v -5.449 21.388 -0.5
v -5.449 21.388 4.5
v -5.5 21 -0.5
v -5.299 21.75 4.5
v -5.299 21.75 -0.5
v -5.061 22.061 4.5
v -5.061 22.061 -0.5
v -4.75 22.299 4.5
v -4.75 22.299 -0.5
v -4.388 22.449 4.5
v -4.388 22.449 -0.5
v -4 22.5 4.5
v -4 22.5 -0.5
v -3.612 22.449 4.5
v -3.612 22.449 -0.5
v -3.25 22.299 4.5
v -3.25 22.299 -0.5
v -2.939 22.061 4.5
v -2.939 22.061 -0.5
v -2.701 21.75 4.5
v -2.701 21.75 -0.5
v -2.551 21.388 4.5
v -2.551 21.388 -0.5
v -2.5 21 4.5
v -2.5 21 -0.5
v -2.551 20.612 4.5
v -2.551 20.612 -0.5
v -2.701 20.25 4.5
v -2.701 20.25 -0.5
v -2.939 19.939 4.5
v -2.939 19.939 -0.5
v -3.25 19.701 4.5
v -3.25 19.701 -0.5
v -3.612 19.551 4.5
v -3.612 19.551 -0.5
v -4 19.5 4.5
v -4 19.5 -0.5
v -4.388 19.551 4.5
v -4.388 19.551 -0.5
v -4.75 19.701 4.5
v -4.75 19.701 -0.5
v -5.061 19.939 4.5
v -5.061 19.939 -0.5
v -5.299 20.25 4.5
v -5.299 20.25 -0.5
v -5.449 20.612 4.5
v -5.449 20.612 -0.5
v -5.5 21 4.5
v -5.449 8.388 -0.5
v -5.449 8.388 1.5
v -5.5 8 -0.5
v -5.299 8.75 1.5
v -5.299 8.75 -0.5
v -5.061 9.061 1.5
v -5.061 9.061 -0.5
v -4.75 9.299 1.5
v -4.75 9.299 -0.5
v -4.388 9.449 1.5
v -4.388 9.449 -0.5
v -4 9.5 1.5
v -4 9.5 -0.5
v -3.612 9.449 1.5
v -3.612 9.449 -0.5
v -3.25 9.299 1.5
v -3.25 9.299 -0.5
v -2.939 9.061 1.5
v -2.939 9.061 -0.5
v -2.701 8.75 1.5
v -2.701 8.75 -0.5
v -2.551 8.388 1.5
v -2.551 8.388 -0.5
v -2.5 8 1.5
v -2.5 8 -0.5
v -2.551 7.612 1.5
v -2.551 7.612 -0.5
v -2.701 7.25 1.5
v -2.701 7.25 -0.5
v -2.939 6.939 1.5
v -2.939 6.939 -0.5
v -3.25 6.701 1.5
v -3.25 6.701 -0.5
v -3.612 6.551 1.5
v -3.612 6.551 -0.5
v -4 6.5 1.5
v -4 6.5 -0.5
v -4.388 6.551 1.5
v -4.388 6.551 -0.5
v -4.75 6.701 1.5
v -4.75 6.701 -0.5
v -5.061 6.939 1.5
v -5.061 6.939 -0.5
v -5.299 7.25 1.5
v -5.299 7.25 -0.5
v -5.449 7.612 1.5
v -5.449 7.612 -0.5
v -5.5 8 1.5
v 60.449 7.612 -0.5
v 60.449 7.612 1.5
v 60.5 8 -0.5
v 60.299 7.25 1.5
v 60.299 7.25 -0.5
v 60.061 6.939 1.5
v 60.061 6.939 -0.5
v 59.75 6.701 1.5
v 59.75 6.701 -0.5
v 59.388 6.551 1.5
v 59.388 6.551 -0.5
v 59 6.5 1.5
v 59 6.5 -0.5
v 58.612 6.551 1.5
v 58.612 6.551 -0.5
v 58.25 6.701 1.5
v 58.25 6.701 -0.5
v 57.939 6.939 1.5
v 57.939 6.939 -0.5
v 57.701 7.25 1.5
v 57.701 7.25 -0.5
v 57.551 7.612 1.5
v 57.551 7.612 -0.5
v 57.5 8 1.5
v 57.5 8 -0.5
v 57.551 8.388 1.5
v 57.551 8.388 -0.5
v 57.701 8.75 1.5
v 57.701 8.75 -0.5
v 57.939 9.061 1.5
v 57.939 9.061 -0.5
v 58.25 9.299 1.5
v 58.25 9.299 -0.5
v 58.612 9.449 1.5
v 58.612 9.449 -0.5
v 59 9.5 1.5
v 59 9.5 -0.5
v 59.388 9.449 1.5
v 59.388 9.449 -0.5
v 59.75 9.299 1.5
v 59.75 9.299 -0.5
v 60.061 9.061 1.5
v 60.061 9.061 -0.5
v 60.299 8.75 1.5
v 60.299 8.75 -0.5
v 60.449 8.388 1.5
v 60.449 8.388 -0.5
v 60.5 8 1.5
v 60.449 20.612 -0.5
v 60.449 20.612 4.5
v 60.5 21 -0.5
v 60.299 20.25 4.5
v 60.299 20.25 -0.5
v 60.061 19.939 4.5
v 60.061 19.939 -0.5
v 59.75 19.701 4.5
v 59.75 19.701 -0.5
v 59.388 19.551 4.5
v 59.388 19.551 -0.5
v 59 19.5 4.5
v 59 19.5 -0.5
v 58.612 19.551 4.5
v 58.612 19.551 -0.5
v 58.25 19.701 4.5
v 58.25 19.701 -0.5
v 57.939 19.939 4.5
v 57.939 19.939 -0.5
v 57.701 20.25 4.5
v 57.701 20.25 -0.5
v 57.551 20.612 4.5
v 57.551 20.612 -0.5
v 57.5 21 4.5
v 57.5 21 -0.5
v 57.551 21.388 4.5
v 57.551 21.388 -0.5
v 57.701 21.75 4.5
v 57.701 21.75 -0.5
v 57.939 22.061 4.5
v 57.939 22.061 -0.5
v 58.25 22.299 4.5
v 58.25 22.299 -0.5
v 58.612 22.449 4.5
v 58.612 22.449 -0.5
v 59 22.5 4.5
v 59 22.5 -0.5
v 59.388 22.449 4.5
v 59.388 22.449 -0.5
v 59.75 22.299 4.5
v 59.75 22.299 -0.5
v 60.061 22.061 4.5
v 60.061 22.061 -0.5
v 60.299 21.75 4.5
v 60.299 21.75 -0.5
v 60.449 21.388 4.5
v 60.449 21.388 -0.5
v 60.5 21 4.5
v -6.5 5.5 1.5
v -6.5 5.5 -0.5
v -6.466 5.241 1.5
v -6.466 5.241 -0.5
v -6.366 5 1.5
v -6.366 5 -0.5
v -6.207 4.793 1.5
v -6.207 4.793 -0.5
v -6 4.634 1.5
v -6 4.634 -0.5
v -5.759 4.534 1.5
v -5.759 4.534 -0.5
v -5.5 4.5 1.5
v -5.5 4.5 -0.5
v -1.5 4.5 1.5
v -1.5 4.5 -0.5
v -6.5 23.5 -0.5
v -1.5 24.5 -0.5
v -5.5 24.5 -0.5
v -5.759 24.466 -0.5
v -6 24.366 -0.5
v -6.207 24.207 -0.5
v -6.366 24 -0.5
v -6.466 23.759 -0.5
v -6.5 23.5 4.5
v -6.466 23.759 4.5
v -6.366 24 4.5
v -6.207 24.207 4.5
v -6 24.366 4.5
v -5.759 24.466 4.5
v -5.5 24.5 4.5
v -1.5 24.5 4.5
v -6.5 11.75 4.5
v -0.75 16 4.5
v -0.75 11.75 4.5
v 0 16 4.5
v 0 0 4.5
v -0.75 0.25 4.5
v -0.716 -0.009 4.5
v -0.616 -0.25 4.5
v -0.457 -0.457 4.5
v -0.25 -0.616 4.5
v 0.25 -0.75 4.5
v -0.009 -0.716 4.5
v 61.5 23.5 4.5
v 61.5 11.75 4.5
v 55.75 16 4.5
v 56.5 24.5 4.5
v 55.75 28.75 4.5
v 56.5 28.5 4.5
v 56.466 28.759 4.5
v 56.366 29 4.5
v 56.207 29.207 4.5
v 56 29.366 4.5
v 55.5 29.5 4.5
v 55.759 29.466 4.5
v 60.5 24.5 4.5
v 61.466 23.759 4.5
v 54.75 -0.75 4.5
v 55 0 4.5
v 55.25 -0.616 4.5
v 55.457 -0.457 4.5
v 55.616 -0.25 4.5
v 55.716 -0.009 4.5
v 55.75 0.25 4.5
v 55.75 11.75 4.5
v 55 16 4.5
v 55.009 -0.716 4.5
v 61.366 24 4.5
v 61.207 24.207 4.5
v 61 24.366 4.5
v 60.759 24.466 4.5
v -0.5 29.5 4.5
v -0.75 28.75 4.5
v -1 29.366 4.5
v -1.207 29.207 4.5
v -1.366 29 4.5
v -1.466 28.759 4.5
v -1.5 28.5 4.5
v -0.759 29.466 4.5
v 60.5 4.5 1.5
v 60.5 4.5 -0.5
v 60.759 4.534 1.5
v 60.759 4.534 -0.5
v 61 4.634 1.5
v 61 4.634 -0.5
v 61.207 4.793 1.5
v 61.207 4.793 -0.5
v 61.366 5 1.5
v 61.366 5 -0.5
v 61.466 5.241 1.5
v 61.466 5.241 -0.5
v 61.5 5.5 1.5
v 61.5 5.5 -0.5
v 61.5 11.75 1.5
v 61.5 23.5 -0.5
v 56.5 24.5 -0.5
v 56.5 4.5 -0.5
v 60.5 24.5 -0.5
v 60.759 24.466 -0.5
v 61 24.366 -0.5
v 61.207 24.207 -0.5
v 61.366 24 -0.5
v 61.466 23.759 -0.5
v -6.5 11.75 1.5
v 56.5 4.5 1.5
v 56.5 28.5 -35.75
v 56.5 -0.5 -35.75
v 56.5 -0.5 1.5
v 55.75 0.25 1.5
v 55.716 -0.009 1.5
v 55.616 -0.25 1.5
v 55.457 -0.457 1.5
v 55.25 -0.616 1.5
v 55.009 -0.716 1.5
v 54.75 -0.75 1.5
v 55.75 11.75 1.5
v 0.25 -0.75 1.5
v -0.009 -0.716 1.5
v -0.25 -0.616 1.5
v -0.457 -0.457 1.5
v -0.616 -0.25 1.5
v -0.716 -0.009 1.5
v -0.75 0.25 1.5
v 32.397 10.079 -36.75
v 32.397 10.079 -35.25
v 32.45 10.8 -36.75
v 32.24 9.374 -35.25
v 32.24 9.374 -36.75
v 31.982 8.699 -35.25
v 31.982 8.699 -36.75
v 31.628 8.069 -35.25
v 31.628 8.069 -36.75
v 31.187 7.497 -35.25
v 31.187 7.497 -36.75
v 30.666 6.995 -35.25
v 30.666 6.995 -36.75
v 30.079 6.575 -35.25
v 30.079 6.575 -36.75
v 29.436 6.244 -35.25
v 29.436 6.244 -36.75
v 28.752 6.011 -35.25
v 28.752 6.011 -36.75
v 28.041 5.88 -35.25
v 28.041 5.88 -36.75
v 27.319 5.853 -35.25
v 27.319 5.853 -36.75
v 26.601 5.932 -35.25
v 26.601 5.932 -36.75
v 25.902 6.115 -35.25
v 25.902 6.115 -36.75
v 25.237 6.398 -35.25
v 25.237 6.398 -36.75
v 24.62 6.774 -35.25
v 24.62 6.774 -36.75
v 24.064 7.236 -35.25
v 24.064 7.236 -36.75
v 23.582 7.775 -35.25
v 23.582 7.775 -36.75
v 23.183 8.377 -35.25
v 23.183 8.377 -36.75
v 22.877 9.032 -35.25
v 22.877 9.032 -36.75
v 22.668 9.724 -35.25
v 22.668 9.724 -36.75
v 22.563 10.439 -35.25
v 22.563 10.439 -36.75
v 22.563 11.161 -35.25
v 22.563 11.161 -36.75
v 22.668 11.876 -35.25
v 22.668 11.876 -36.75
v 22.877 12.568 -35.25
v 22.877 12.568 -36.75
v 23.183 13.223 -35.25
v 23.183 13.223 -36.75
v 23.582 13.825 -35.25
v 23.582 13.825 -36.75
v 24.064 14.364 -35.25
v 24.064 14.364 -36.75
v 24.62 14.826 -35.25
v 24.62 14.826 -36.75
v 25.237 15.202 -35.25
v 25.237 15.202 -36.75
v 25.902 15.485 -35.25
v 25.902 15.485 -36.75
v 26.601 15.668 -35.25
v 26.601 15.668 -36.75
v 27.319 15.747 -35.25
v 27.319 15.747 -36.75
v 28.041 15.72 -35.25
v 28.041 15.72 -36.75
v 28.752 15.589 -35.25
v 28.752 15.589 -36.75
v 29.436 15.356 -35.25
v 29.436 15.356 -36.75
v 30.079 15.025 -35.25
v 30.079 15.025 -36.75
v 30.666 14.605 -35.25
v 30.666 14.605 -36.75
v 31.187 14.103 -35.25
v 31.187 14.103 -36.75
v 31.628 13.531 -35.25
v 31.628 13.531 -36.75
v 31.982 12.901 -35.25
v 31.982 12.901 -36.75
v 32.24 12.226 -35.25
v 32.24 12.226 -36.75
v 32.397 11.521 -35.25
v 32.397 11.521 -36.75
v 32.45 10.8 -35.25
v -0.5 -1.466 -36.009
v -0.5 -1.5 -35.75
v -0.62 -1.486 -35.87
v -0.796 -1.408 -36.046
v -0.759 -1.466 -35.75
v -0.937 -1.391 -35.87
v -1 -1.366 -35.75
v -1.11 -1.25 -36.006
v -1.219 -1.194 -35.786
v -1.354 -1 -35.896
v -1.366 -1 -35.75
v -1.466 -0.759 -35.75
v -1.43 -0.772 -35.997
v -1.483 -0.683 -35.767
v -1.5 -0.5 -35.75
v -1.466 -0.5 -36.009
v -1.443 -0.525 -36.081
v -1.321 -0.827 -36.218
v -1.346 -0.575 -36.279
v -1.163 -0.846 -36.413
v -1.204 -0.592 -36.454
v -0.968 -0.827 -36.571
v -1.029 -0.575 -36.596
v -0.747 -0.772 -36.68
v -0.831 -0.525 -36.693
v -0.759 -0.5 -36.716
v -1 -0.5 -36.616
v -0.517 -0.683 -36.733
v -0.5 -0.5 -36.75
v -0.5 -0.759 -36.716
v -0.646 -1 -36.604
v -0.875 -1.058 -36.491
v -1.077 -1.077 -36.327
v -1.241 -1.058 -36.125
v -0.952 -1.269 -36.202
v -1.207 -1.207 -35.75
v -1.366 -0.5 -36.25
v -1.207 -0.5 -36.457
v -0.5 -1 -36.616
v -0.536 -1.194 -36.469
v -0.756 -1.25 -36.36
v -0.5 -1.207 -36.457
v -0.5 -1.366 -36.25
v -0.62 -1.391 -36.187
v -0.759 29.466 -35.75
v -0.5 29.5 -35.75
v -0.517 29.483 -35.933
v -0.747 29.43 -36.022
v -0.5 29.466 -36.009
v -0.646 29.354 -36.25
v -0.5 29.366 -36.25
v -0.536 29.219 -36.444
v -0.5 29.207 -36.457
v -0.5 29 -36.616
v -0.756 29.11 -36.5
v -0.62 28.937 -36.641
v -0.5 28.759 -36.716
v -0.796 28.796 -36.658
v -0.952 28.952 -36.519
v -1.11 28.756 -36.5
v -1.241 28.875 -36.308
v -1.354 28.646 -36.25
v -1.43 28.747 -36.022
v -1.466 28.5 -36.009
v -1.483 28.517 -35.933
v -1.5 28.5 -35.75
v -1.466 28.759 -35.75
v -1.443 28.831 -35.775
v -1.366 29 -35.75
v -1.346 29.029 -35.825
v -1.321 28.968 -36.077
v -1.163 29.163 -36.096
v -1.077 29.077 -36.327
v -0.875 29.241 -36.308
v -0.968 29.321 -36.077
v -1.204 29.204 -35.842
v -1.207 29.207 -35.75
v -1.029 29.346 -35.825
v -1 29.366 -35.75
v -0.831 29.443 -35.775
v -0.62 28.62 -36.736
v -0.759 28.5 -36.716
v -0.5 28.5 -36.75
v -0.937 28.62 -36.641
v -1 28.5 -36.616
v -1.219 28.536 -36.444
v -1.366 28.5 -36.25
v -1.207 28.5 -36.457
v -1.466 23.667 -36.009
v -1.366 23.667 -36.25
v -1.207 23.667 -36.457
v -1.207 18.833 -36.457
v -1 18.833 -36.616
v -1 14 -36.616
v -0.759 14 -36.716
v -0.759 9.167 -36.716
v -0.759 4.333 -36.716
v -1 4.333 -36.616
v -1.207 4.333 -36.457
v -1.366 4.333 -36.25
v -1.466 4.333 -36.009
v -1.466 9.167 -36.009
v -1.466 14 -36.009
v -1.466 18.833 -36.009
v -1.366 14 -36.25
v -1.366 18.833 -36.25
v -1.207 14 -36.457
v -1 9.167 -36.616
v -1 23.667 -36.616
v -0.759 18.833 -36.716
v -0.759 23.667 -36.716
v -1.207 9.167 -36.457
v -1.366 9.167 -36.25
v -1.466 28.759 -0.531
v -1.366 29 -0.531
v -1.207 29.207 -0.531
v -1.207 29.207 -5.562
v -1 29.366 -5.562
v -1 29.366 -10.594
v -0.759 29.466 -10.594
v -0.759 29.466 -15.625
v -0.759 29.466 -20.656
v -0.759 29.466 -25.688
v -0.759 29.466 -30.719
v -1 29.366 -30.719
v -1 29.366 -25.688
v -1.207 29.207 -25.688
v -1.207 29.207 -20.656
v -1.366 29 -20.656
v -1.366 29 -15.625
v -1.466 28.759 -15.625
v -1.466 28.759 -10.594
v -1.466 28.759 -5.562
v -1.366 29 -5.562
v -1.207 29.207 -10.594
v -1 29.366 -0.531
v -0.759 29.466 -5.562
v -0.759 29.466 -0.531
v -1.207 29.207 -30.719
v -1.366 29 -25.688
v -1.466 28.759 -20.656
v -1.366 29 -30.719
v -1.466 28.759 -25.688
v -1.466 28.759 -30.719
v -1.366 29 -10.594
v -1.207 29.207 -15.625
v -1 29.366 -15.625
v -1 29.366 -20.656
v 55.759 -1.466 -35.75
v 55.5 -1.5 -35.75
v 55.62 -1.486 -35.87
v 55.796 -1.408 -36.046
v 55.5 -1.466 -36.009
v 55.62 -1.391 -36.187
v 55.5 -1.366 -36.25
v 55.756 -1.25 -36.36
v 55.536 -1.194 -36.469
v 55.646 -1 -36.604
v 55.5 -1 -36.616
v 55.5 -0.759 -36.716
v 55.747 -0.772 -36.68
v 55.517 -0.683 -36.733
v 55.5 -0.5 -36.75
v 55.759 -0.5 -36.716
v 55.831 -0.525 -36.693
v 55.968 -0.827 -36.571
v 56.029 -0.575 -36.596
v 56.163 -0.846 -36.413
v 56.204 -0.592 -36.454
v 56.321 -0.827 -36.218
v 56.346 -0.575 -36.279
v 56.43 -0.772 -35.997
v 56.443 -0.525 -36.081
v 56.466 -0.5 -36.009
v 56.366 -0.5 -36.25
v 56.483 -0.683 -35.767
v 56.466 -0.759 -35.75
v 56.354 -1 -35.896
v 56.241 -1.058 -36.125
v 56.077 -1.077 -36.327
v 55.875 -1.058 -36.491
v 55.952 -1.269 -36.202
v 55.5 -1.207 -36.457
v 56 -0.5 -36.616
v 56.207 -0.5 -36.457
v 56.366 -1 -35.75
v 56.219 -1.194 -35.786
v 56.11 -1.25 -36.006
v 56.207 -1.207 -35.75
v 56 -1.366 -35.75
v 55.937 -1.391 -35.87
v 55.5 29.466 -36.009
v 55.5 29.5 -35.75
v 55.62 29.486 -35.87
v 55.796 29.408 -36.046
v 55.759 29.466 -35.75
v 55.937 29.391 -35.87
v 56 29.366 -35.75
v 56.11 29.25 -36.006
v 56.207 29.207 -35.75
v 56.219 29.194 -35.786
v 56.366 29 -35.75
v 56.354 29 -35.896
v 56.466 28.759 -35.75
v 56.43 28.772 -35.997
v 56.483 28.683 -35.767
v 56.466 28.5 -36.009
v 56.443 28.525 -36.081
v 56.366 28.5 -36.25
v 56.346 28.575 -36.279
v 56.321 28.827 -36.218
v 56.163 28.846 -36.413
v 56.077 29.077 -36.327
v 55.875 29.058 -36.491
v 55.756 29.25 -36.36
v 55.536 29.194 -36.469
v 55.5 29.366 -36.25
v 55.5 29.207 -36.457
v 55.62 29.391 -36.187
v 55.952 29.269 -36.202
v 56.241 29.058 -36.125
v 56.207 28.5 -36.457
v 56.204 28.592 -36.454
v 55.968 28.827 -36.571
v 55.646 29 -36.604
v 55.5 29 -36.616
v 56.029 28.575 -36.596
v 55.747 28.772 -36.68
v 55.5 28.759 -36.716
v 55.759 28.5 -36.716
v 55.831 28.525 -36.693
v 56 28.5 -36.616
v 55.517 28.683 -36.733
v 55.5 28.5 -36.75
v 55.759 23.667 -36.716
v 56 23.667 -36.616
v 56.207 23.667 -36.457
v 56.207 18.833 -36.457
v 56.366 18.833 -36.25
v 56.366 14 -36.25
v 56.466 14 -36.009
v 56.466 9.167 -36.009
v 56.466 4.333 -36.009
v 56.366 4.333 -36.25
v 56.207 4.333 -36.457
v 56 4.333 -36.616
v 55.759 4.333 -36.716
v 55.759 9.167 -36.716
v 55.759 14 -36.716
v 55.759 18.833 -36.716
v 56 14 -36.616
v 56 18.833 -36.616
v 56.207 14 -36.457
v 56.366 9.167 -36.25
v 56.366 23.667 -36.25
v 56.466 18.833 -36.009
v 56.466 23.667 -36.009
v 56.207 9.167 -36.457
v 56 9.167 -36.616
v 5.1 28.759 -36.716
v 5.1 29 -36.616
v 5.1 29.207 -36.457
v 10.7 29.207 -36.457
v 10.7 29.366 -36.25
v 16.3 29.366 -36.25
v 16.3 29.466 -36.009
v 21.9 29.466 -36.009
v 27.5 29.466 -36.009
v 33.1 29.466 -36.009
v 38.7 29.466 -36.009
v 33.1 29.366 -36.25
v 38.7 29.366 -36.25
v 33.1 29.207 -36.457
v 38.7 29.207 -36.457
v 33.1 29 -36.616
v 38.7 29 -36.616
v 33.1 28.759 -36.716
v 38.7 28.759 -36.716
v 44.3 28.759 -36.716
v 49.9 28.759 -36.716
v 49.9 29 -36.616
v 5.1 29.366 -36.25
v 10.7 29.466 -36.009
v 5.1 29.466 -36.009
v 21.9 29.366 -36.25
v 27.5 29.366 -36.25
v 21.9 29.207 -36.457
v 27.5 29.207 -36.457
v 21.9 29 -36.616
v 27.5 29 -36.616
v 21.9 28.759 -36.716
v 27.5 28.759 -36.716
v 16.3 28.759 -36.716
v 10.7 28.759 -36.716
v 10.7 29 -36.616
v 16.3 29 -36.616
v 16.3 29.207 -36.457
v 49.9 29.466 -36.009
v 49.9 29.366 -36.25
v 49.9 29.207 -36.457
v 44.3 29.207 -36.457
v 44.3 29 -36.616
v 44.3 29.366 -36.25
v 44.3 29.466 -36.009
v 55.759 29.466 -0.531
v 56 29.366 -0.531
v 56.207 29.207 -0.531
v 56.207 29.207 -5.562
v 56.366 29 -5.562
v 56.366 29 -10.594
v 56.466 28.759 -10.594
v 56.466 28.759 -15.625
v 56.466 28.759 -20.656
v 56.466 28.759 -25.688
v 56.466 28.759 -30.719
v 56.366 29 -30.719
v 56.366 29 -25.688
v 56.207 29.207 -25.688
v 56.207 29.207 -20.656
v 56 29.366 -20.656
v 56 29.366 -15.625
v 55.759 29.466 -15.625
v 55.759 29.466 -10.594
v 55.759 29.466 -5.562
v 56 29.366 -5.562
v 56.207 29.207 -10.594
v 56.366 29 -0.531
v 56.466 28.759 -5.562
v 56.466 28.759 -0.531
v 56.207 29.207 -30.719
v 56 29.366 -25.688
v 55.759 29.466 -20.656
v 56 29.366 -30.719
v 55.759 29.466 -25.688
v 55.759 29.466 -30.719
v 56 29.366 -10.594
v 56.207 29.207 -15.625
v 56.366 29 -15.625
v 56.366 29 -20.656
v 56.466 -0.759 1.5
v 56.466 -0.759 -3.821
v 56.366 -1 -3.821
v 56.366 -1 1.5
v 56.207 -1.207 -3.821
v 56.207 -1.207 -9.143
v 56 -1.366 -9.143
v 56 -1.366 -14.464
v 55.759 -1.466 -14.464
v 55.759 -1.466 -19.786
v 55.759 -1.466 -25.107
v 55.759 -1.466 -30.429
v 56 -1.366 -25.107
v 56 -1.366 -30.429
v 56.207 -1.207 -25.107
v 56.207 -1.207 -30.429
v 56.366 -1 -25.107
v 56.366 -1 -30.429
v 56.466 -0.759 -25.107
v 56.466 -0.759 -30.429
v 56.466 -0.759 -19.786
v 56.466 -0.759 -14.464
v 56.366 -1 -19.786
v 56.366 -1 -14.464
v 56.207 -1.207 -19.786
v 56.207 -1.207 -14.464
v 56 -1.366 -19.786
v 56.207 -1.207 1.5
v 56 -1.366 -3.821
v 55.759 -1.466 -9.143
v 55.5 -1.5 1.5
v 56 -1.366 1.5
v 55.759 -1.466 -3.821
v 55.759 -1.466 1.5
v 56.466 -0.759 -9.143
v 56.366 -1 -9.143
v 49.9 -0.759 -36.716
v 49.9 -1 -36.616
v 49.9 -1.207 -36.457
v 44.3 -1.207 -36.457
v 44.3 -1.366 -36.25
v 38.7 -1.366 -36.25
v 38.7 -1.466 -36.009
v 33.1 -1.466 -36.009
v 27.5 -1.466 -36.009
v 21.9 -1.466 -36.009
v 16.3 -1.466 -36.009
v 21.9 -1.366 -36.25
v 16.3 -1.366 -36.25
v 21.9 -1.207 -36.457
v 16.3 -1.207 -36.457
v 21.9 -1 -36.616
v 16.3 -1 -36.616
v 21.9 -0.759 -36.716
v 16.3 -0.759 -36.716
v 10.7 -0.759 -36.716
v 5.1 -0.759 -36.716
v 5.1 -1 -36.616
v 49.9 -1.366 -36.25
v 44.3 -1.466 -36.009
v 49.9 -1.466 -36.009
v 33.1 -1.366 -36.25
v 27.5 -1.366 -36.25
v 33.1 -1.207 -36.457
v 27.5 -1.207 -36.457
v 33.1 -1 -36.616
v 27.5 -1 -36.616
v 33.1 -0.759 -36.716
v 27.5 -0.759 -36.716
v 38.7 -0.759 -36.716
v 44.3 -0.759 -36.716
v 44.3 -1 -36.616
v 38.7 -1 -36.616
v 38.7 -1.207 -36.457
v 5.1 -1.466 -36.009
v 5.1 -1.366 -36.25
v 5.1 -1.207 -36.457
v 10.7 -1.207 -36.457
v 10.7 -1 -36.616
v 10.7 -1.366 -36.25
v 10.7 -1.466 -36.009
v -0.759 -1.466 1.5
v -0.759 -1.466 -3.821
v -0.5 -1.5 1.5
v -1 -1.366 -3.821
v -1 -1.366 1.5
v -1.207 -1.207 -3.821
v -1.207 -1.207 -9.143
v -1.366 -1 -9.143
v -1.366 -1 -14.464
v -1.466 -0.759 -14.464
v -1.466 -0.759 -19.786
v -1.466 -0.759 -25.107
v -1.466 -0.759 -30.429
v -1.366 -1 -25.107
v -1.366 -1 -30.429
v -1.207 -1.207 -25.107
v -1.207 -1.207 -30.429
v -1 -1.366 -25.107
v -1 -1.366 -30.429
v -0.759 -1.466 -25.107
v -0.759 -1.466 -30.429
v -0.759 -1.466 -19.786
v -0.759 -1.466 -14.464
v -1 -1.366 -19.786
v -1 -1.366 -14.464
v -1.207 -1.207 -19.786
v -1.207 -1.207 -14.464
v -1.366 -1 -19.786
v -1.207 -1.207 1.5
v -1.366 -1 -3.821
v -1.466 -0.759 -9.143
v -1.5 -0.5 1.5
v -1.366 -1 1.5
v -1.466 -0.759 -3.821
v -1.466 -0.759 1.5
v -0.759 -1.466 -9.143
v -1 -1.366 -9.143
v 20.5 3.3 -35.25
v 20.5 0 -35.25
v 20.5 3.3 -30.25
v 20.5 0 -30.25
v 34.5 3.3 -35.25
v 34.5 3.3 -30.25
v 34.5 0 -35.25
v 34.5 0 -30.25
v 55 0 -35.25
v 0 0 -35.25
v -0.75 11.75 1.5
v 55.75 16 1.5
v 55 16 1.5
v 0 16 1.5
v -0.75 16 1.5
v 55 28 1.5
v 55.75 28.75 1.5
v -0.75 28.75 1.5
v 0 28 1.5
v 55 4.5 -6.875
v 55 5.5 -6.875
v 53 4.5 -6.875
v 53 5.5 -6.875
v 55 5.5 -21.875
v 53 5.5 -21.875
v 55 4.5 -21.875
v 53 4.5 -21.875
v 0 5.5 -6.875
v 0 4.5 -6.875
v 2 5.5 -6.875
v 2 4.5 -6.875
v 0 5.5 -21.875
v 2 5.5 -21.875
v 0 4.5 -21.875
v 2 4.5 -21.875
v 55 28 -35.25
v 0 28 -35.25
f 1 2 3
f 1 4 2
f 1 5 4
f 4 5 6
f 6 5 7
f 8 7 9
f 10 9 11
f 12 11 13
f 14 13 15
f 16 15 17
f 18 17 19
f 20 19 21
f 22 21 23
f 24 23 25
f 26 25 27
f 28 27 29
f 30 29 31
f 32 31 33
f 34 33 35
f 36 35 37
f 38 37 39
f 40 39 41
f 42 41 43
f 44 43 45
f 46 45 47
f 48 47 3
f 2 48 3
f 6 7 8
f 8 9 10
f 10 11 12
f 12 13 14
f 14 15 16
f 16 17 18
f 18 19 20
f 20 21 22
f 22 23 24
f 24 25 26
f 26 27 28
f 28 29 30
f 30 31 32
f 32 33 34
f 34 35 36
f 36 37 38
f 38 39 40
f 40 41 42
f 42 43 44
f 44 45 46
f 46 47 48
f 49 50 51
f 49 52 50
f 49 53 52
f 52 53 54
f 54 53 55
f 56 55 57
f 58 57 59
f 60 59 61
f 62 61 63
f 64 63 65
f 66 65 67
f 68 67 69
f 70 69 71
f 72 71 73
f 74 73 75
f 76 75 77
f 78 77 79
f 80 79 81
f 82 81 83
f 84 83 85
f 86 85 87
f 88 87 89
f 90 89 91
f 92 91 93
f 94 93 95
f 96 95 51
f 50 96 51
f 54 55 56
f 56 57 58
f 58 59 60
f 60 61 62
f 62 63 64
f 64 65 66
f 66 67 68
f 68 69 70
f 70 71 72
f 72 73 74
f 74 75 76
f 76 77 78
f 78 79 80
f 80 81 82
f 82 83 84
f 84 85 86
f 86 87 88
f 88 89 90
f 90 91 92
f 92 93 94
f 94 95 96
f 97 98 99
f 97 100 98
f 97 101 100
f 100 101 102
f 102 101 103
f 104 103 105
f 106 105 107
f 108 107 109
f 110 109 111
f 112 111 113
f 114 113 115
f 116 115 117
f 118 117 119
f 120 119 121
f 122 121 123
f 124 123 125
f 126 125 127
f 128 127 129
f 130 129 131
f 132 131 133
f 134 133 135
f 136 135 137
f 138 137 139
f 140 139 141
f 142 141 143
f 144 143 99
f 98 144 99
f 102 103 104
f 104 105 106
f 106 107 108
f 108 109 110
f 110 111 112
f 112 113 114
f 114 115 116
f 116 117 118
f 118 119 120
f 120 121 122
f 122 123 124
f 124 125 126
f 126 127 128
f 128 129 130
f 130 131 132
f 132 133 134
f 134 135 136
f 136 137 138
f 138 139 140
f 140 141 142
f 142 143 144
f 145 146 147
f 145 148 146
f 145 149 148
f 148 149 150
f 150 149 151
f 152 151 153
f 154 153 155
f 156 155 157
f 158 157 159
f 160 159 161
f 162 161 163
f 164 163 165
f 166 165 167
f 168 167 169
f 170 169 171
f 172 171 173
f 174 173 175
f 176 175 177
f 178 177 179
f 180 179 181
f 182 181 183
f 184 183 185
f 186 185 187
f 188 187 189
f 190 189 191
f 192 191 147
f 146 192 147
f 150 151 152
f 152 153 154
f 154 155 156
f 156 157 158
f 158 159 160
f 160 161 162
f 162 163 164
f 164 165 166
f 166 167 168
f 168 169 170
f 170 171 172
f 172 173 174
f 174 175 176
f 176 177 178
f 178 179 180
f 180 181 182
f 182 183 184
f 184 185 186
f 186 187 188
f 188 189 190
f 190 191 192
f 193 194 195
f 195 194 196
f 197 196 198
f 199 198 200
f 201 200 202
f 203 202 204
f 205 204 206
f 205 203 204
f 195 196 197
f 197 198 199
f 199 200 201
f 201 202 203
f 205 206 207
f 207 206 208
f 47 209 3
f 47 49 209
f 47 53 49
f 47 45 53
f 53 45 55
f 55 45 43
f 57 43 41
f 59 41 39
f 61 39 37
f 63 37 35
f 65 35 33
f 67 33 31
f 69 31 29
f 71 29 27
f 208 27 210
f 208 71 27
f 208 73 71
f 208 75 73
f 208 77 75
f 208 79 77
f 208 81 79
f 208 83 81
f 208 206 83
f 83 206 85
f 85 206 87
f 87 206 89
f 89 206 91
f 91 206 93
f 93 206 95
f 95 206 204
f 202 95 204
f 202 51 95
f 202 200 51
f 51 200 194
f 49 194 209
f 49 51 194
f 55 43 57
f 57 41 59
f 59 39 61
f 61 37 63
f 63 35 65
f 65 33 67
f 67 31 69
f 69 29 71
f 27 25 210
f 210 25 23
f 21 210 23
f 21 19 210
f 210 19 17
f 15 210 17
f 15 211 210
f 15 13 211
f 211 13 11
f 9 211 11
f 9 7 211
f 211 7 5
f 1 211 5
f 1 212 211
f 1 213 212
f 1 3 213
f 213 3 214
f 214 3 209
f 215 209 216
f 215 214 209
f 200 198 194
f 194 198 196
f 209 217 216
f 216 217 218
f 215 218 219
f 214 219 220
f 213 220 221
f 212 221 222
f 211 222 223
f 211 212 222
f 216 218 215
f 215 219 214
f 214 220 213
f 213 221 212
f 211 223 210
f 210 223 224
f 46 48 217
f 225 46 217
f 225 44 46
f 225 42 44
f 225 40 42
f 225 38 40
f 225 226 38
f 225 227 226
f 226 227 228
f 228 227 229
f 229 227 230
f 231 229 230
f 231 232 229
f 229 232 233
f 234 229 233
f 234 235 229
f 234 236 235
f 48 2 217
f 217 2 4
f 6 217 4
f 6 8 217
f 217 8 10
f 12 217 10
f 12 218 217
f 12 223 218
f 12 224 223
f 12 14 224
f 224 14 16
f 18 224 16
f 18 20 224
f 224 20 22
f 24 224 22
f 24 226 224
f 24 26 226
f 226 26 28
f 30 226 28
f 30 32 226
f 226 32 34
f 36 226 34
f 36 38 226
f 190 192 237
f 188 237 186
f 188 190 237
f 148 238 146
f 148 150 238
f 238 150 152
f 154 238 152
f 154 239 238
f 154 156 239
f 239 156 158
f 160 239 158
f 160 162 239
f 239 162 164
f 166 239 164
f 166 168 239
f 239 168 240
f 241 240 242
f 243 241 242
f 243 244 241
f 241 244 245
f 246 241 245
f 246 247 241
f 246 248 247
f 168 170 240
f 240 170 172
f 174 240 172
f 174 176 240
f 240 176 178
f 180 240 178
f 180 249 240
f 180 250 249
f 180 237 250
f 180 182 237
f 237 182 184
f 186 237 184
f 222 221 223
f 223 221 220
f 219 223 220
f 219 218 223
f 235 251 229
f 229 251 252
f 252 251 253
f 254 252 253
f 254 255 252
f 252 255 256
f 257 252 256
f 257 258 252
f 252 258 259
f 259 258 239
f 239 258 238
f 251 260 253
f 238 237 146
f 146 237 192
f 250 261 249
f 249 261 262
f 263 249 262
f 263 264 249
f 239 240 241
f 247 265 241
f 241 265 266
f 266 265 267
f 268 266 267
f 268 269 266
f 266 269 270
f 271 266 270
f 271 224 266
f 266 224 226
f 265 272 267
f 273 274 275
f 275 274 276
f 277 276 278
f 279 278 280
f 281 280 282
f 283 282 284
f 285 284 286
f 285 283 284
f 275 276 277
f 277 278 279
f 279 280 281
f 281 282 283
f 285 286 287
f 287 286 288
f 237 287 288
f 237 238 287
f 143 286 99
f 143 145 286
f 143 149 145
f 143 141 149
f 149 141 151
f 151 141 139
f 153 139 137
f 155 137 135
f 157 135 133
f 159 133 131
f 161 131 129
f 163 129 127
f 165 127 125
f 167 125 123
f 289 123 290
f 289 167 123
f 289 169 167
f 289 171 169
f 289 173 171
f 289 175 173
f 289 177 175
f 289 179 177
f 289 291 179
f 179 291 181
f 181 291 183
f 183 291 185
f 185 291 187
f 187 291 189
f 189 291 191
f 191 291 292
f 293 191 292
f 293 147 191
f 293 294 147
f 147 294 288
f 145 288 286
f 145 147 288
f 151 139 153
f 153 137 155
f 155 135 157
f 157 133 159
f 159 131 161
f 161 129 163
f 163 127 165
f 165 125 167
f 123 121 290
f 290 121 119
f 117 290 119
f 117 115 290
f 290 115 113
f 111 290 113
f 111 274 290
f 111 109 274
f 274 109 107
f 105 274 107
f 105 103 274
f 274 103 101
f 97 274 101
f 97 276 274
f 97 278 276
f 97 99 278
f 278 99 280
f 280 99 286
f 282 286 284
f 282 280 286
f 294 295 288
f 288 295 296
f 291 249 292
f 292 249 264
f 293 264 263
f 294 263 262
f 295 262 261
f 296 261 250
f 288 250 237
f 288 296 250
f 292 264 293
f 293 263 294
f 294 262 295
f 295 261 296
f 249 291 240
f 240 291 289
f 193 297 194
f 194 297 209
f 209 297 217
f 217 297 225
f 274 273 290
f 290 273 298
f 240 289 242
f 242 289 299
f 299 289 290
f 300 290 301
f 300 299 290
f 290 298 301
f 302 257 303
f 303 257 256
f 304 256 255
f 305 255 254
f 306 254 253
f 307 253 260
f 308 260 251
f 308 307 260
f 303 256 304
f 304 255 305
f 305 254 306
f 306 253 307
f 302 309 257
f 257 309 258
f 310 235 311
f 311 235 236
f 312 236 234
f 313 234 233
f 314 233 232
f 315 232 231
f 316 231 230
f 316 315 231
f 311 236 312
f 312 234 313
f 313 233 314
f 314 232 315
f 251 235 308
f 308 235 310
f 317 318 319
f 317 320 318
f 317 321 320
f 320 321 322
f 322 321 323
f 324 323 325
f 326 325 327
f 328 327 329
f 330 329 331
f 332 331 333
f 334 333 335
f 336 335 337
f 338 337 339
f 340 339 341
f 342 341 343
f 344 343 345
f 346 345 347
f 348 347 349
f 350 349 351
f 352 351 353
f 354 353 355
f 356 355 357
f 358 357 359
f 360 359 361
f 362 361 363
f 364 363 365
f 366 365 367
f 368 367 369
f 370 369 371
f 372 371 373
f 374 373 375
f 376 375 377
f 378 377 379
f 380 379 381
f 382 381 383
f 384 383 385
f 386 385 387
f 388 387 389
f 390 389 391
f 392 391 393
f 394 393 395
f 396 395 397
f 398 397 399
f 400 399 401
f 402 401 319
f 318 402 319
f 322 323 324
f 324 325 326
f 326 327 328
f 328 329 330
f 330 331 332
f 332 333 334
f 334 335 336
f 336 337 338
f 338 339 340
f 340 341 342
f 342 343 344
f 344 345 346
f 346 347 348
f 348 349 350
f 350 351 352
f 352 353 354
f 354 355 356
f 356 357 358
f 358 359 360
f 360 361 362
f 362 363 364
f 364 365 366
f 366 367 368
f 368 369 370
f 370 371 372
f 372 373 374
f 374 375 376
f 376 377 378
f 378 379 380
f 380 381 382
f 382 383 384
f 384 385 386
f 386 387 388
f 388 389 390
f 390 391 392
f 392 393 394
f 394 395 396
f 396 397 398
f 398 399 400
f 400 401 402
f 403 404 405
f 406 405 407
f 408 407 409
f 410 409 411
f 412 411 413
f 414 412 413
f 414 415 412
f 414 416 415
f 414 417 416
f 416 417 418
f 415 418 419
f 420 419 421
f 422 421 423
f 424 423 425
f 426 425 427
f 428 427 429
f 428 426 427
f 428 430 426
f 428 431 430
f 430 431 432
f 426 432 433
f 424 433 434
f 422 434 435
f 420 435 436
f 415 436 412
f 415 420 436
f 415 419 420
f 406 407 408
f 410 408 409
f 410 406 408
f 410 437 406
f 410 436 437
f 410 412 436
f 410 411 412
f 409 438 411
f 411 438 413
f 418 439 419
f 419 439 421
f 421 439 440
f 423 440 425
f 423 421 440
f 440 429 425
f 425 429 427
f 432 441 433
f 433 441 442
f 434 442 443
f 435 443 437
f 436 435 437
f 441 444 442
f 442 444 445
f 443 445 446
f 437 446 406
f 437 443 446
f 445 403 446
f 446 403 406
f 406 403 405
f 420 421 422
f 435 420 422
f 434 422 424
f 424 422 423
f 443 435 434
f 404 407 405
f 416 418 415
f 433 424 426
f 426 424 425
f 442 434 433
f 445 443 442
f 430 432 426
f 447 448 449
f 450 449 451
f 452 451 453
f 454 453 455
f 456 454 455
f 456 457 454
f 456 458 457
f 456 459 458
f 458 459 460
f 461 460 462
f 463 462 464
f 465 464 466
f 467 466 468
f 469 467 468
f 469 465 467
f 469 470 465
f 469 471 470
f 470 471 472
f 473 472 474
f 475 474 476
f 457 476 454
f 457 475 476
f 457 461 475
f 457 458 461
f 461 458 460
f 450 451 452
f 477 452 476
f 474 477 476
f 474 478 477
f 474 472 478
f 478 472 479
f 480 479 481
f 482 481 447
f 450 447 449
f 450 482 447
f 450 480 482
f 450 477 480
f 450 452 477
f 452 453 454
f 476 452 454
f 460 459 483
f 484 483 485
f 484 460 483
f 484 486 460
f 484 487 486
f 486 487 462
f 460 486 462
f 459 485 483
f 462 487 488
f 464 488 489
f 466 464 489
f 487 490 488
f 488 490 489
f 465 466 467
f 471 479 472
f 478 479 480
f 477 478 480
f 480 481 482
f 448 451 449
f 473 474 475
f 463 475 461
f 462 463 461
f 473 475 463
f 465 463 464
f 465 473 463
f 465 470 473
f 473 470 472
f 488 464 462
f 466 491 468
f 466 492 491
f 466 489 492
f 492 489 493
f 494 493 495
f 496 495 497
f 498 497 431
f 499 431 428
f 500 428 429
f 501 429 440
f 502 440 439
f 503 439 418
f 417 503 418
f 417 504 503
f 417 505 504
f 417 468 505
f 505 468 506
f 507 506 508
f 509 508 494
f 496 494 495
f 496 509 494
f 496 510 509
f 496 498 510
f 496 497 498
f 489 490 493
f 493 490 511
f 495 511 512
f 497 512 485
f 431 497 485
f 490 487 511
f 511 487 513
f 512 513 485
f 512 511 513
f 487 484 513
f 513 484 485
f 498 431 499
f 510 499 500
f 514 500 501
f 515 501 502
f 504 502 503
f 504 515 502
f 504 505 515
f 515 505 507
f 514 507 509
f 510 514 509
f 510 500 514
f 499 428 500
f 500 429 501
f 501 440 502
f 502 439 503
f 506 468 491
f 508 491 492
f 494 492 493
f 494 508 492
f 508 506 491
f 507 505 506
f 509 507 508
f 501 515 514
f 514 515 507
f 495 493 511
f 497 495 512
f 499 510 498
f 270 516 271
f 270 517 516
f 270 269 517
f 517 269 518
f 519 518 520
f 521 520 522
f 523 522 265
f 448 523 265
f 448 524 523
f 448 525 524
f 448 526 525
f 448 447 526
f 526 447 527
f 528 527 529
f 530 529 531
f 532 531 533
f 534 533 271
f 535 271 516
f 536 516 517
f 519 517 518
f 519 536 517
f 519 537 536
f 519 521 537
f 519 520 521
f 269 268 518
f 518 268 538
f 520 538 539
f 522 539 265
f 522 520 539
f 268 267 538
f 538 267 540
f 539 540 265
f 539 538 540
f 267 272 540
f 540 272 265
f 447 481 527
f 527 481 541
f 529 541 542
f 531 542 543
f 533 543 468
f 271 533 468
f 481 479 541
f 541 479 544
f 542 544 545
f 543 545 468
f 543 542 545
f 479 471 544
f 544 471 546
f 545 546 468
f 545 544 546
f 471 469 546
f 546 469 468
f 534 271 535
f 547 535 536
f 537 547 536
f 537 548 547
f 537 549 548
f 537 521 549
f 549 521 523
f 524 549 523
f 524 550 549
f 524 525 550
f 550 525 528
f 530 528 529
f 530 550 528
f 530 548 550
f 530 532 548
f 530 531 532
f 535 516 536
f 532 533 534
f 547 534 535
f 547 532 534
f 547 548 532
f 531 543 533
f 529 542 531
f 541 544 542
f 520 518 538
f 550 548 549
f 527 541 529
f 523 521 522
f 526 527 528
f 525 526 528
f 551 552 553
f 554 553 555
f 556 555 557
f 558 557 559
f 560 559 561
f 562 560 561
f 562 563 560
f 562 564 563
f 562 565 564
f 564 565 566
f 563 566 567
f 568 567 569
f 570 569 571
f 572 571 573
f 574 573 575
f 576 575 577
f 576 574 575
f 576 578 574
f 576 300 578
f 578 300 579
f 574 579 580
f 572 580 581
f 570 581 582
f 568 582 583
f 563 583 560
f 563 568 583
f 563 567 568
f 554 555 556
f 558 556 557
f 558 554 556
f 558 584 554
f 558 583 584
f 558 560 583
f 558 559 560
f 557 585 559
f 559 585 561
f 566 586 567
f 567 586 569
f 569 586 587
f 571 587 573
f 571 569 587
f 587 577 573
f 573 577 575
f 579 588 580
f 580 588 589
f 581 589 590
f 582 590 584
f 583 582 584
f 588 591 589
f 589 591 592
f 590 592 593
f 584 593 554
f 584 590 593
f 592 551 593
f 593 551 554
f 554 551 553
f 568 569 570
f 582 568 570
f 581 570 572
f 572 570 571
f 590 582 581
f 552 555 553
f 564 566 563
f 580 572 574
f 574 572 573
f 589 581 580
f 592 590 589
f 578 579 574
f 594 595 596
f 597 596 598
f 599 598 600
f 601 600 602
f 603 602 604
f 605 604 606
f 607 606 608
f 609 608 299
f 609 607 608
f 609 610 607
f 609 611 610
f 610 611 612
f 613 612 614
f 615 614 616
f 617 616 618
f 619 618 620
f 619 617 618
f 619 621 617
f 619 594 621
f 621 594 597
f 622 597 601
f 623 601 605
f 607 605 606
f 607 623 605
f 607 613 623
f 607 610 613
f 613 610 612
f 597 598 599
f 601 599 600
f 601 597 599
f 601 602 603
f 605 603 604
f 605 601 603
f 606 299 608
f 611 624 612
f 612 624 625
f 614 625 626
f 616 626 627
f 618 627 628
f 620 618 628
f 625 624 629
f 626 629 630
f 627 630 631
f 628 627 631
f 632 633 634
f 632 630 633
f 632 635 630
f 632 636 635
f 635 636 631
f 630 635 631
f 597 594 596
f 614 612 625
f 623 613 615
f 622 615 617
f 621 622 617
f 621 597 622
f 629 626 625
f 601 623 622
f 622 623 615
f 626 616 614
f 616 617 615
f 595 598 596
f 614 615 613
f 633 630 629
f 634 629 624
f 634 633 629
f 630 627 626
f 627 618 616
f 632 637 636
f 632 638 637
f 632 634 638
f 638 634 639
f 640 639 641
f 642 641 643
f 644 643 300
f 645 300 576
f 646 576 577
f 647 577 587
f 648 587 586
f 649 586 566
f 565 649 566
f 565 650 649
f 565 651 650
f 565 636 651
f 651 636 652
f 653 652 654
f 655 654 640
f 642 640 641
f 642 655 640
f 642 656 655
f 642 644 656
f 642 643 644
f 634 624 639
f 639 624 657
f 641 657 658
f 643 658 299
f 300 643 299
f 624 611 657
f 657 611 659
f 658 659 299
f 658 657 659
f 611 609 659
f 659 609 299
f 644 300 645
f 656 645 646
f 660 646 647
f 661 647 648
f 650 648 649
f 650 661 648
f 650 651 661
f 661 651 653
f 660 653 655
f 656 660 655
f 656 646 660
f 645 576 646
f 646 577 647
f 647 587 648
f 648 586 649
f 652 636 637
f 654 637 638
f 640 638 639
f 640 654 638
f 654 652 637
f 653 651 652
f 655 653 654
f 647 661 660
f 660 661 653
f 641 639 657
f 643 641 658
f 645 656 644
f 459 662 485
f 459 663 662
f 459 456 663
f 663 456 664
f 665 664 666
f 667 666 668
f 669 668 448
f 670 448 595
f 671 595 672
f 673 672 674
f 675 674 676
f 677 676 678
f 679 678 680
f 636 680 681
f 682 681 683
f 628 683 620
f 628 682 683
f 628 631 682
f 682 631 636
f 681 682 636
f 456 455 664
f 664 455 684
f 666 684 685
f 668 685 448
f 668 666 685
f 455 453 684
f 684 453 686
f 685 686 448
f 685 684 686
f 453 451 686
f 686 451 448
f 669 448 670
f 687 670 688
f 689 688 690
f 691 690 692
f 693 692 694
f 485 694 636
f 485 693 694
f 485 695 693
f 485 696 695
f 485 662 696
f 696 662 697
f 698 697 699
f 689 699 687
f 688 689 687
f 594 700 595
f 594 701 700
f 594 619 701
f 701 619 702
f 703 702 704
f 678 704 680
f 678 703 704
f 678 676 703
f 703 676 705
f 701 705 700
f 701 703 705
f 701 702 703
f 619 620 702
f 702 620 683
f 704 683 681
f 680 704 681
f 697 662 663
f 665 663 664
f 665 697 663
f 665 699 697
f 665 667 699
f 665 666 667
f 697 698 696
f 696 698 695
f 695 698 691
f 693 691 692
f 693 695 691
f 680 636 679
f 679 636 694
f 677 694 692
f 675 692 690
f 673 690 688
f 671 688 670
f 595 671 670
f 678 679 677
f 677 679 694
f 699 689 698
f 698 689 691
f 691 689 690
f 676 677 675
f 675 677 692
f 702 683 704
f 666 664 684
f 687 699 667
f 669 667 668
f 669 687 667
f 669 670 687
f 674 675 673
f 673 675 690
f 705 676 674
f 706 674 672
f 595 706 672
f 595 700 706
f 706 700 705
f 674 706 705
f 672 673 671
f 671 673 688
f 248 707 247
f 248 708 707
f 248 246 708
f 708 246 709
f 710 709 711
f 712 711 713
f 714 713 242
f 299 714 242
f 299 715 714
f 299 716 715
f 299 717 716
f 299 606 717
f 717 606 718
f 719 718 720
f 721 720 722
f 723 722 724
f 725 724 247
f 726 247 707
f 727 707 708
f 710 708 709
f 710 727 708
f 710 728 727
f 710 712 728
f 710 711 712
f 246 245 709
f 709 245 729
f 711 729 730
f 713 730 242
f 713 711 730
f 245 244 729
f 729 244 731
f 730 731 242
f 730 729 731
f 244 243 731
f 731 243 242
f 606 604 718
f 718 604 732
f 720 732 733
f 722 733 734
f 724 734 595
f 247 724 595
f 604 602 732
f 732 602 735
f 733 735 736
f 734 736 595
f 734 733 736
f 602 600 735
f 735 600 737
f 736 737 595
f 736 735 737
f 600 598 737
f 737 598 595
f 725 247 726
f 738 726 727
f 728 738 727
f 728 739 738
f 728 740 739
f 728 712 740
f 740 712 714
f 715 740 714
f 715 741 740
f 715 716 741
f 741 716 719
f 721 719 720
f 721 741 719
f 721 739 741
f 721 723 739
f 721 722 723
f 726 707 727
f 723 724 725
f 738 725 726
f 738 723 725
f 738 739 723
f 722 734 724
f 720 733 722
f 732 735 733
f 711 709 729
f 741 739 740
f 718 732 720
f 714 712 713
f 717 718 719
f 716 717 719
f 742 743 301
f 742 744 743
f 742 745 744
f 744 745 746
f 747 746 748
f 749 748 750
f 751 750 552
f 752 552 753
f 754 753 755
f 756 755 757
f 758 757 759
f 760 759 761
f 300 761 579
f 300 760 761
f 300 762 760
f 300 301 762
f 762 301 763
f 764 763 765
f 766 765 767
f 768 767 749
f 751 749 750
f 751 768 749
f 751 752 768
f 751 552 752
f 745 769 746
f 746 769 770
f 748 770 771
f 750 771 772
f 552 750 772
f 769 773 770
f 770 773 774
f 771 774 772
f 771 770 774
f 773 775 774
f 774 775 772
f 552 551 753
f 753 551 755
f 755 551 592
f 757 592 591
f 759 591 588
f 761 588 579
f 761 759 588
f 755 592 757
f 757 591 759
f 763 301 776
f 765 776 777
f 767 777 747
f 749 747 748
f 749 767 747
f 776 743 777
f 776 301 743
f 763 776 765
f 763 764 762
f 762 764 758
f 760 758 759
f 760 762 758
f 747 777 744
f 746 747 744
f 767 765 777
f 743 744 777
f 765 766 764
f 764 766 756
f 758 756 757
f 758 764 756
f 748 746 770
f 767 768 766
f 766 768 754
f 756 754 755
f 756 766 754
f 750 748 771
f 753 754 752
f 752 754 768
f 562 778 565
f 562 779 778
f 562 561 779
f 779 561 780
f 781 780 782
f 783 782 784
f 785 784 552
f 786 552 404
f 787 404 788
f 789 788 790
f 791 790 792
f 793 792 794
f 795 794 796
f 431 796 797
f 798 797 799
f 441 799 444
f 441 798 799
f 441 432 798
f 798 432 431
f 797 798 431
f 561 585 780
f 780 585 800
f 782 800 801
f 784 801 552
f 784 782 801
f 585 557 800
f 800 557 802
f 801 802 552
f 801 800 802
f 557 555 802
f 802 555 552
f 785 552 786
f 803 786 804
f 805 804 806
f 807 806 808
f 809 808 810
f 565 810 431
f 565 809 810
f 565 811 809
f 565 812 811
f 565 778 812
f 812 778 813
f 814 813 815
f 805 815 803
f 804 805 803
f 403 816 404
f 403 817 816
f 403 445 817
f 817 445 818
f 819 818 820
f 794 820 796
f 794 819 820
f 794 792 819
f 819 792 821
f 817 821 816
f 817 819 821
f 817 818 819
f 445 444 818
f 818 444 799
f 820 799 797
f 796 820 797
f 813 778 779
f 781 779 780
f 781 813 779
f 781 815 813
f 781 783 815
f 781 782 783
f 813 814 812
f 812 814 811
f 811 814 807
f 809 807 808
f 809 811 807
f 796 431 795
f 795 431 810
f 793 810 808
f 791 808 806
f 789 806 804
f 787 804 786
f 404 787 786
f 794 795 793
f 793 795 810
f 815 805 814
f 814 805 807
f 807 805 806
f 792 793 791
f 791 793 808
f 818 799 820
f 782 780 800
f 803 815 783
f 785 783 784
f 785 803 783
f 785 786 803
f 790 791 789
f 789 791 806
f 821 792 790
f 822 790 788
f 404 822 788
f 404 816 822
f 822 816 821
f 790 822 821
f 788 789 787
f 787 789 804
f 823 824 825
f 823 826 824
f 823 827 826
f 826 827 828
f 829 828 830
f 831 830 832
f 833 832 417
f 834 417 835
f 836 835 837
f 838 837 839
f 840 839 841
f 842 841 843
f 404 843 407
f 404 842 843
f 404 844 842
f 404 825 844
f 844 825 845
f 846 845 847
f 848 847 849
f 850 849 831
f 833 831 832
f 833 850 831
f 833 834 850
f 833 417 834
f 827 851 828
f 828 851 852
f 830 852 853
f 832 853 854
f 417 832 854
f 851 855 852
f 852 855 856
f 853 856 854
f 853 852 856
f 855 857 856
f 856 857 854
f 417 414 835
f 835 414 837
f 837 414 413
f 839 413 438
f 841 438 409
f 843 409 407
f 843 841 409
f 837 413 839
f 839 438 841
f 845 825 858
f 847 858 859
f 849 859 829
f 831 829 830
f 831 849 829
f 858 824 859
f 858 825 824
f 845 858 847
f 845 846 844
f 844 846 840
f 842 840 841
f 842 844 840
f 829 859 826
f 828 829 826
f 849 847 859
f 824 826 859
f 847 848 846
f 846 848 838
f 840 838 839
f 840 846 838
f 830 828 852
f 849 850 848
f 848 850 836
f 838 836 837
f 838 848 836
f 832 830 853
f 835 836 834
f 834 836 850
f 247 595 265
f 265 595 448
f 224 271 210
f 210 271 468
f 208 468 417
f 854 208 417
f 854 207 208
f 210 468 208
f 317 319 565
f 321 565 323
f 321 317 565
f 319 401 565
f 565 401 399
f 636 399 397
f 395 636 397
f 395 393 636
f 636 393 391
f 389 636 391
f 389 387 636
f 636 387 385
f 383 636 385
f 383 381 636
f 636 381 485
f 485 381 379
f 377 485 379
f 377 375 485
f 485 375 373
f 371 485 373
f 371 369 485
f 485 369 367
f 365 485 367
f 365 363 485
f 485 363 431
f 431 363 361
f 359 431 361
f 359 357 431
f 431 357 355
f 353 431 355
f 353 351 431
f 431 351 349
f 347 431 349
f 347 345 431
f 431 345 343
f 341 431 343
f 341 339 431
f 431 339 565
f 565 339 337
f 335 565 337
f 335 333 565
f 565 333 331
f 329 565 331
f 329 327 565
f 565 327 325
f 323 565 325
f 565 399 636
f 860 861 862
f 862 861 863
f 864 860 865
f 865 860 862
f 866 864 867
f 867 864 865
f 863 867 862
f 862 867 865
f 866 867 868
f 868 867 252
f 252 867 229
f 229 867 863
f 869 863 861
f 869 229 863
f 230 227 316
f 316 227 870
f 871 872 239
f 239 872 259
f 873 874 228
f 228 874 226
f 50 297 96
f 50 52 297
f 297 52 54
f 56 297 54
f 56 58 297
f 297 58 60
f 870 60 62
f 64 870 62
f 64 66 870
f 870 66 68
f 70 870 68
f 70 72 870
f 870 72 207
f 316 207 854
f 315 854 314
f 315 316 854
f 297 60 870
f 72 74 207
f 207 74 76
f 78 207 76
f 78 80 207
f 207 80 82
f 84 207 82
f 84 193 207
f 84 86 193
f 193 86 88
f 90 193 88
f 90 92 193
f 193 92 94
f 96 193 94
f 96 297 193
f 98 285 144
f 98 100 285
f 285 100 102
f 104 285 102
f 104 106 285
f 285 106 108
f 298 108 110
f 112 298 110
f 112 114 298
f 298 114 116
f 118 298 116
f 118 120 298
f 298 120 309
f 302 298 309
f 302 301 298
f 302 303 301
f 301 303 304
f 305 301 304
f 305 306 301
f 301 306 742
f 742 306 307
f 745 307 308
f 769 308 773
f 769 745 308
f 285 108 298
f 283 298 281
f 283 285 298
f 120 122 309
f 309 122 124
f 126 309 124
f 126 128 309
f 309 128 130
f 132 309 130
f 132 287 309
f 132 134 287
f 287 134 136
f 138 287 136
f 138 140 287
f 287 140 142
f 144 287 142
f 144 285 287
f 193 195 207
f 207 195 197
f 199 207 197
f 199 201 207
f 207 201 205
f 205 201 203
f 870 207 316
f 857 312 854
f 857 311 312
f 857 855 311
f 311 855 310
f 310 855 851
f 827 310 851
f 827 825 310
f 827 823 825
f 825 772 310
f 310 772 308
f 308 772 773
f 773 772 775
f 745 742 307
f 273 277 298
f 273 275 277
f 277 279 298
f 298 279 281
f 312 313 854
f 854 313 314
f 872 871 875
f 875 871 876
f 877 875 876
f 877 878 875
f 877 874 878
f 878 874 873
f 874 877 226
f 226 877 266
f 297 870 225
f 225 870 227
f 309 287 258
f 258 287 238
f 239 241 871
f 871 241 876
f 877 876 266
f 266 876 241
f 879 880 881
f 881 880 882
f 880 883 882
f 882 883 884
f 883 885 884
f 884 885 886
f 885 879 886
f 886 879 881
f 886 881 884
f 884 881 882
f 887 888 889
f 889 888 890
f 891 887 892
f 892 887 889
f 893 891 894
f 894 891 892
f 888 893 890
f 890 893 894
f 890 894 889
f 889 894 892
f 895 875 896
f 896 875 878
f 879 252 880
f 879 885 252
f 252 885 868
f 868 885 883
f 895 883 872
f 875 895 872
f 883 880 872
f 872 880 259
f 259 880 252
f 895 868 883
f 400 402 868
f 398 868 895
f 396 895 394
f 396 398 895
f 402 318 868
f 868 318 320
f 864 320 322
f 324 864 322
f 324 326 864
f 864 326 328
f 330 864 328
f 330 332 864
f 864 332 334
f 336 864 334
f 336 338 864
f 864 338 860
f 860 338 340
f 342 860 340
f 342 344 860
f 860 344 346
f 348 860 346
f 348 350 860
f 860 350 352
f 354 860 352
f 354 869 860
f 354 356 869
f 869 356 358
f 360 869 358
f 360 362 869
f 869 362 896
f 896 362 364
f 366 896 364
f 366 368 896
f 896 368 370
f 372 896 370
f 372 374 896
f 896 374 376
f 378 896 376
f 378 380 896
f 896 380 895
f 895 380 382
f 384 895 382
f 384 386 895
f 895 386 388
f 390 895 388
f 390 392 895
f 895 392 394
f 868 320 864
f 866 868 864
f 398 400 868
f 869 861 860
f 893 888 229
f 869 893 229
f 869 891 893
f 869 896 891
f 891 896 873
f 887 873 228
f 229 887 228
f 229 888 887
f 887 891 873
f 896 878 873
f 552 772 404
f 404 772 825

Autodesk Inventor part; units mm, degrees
ref_plane "YZ Plane" through (0, 0, 0) normal (1, 0, 0) x (0, 1, 0)
ref_plane "XZ Plane" through (0, 0, 0) normal (0, 1, 0) x (-1, 0, 0)
ref_plane "XY Plane" through (0, 0, 0) normal (0, 0, 1) x (1, 0, 0)
sketch "Sketch3" plane through (0, 0, 0) normal (0, 1, 0) x (-1, 0, 0)
  line L0 (0, 0) -> (-55, 0)
  line L1 (-55, 0) -> (-55, -35.25)
  line L2 (-55, -35.25) -> (0, -35.25)
  line L3 (0, -35.25) -> (0, 0)
  line L4 (1.5, 1.5) -> (-56.5, 1.5)
  line L5 (-56.5, 1.5) -> (-56.5, -36.75)
  line L6 (-56.5, -36.75) -> (1.5, -36.75)
  line L7 (1.5, -36.75) -> (1.5, 1.5)
  dimension "d0" = 35.25
  dimension "d1" = 55
  dimension "d4" = 38.25
  dimension "d5" = 58
  dimension "d6" = 1.5
  dimension "d7" = 1.5
extrude "Extrusion1" add sketch "Sketch3" against normal blind 1.5 contours L3 L2 L1 L0 | L7 L6 L5 L4
sketch "Sketch5" plane through (0, 0, 0) normal (0, 1, 0) x (-1, 0, 0)
  line L0 (-55, 0) -> (-55, -35.25)
  line L1 (-55, -35.25) -> (0, -35.25)
  line L2 (0, -35.25) -> (0, 0)
  line L3 (-56.5, 1.5) -> (-56.5, -36.75)
  line L4 (-56.5, -36.75) -> (1.5, -36.75)
  line L5 (1.5, -36.75) -> (1.5, 1.5)
  line L6 (0, 0) -> (0, 1.5)
  line L7 (1.5, 1.5) -> (0, 1.5)
  line L8 (-55, 0) -> (-55, 1.5)
  line L9 (-55, 1.5) -> (-56.5, 1.5)
  dimension "d9" = 55
  dimension "d11" = 58
  dimension "d12" = 1.5
extrude "Extrusion2" add sketch "Sketch5" along normal blind 28
sketch "Sketch6" plane through (0, 28, 0) normal (0, 1, 0) x (1, 0, 0)
  line L0 (-1.5, -1.5) -> (56.5, -1.5)
  line L1 (56.5, -1.5) -> (56.5, 36.75)
  line L2 (56.5, 36.75) -> (-1.5, 36.75)
  line L3 (-1.5, 36.75) -> (-1.5, -1.5)
  point P0 (0, 0)
extrude "Extrusion3" add sketch "Sketch6" along normal blind 1.5
sketch "Sketch7" plane through (0, 0, 1.5) normal (1, 0, 0) x (0, 0, -1)
  line L0 (8.375, 4.5) -> (23.375, 4.5)
  line L1 (23.375, 4.5) -> (23.375, 5.5)
  line L2 (23.375, 5.5) -> (8.375, 5.5)
  line L3 (8.375, 5.5) -> (8.375, 4.5)
  line L4 (36.75, 0) -> (36.75, 28) projected
  line L5 (0, 0) -> (0, 28) projected
  line L6 (36.75, 0) -> (0, 0) projected
  point P0 (1.5, 0)
  dimension "d20" = 15
  dimension "d21" = 1
  dimension "d22" = 13.375
  dimension "d23" = 8.375
  dimension "d40" = 4.5
ref_plane "Work Plane1" through (27.5, 0, 1.5) normal (1, 0, 0) x (0, 0, -1)
extrude "Extrusion4" add sketch "Sketch7" along normal blind 2
mirror "Mirror1" about plane through (27.5, 0, 1.5) normal (1, 0, 0) of "Extrusion4"
sketch "Sketch8" plane through (-1.5, -1.5, 1.5) normal (0, 0, 1) x (1, 0, 0)
  line L0 (0.75, 30.25) -> (57.25, 30.25)
  line L1 (57.25, 30.25) -> (57.25, 13.25)
  line L2 (0.75, 13.25) -> (0.75, 30.25)
  line L3 (0, 31) -> (58, 31) projected
  line L4 (0.75, 13.25) -> (0, 13.25)
  line L5 (57.25, 13.25) -> (58, 13.25)
  line L6 (0, 31) -> (0, 13.25)
  line L7 (0, 31) -> (0, 0) projected
  line L8 (58, 31) -> (58, 13.25)
  line L9 (58, 0) -> (58, 31) projected
  point P0 (1.5, 1.5)
  dimension "d27" = 0.75
  dimension "d29" = 56.5
  dimension "d31" = 17
  dimension "d65" = 0.75
  dimension "d84" = 17
extrude "Extrusion5" add sketch "Sketch8" along normal blind 3
sketch "Sketch9" plane through (-1.5, -1.5, 1.5) normal (0, 0, 1) x (1, 0, 0)
  line L0 (0.75, 0.75) -> (57.25, 0.75)
  line L1 (57.25, 0.75) -> (57.25, 17.5)
  line L2 (0.75, 17.5) -> (0.75, 0.75)
  line L3 (1.5, 1.5) -> (56.5, 1.5) projected
  line L4 (57.25, 17.5) -> (56.5, 17.5)
  line L5 (56.5, 1.5) -> (56.5, 29.5) projected
  line L6 (56.5, 1.5) -> (56.5, 17.5)
  line L7 (56.5, 1.5) -> (1.5, 1.5)
  line L8 (0.75, 17.5) -> (1.5, 17.5)
  line L9 (1.5, 1.5) -> (1.5, 29.5) projected
  line L10 (1.5, 17.5) -> (1.5, 1.5)
  line L11 (1.5, 29.5) -> (56.5, 29.5) projected
  dimension "d34" = 0.75
  dimension "d36" = 56.5
  dimension "d69" = 16.75
  dimension "d70" = 16.75
  dimension "d97" = 28.75
extrude "Extrusion6" add sketch "Sketch9" along normal blind 3 contours L2 L8 L9 L3 L5 L4 L1 L0
sketch "Sketch10" plane through (0, 0, -35.25) normal (0, 0, 1) x (1, 0, 0)
  line L0 (55, 0) -> (0, 0) projected
  line L1 (20.5, 0) -> (34.5, 0)
  line L2 (34.5, 0) -> (34.5, 3.3)
  line L3 (34.5, 3.3) -> (20.5, 3.3)
  line L4 (20.5, 3.3) -> (20.5, 0)
  line L5 (0, 0) -> (0, 28) projected
  dimension "d41" = 14
  dimension "d42" = 20.5
  dimension "d43" = 3.3
extrude "Extrusion7" add sketch "Sketch10" along normal blind 5
fillet "Fillet1" radius 1 8 edges at (56.5, 29.5, -16.125) (56.5, -1.5, -17.625) (56.5, 14, -36.75) (27.5, 29.5, -36.75) (27.5, -1.5, -36.75) (-1.5, 14, -36.75) (-1.5, 29.5, -16.125) (-1.5, -1.5, -17.625)
sketch "Sketch11" plane through (0, 28, -35.25) normal (0, 0, 1) x (1, 0, 0)
  circle A0 centre (27.5, -17.2) radius 4.95
  line L0 (20.5, -24.7) -> (34.5, -24.7) projected
  line L1 (0, -28) -> (0, 0) projected
  dimension "d47" = 9.9
  dimension "d48" = 7.5
  dimension "d49" = 27.5
extrude "Extrusion8" cut sketch "Sketch11" against normal blind 5
fillet "Fillet2" radius 1 1 edges at (-0.75, -0.75, 3)
fillet "Fillet3" radius 1 1 edges at (55.75, -0.75, 3)
sketch "Sketch15" plane through (56.5, 11.75, 4.5) normal (1, 0, 0) x (0, 0, -1)
  line L0 (0, 0) -> (5, 0)
  line L1 (5, 0) -> (5, 12.75)
  line L2 (5, 12.75) -> (0, 12.75)
  line L3 (0, 12.75) -> (0, 0)
  line L4 (5, 0) -> (3, 0)
  line L5 (3, 0) -> (3, -7.25)
  line L6 (3, -7.25) -> (5, -7.25)
  line L7 (5, -7.25) -> (5, 0)
  point P0 (4.5, -11.75)
  point P1 (0, 4.25)
  point P2 (0, 17.75)
  dimension "d78" = 5
  dimension "d79" = 12.75
  dimension "d80" = 2
  dimension "d81" = 7.25
  dimension "d98" = 11.5
  dimension "d99" = 20
  dimension "d100" = 12.75
  dimension "d101" = 5
extrude "Extrusion10" add sketch "Sketch15" along normal blind 5
mirror "Mirror3" about plane through (27.5, 0, 1.5) normal (1, 0, 0) of "Extrusion10"
fillet "Fillet7" radius 1 2 edges at (61.5, 24.5, 2) (61.5, 4.5, 0.5)
fillet "Fillet8" radius 1 2 edges at (-6.5, 24.5, 2) (-6.5, 4.5, 0.5)
sketch "Sketch16" plane through (-1.5, -1.5, 4.5) normal (0, 0, 1) x (1, 0, 0)
  circle A0 centre (60.5, 22.5) radius 1.5
  line L0 (63, 25) -> (63, 13.25) projected
  line L1 (58, 26) -> (62, 26) projected
  point P0 (1.5, 1.5)
  dimension "d87" = 3
  dimension "d88" = 2.5
  dimension "d89" = 3.5
extrude "Extrusion11" cut sketch "Sketch16" against normal blind 5
sketch "Sketch17" plane through (-0.5, -1.5, 1.5) normal (0, 0, 1) x (1, 0, 0)
  circle A0 centre (59.5, 9.5) radius 1.5
  line L0 (57, 6) -> (61, 6) projected
  line L1 (62, 7) -> (62, 25) projected
  point P0 (0.5, 1.5)
  dimension "d92" = 3
  dimension "d93" = 3.5
  dimension "d94" = 2.5
extrude "Extrusion12" cut sketch "Sketch17" against normal blind 2
mirror "Mirror4" about plane through (27.5, 0, 1.5) normal (1, 0, 0) of "Extrusion11", "Extrusion12"
equation "\"d7\" = d6"
equation "\"d31\" = d66"
equation "\"d70\" = d69"
equation "\"d66\" = 17"
properties part number "sensor1_2t"
